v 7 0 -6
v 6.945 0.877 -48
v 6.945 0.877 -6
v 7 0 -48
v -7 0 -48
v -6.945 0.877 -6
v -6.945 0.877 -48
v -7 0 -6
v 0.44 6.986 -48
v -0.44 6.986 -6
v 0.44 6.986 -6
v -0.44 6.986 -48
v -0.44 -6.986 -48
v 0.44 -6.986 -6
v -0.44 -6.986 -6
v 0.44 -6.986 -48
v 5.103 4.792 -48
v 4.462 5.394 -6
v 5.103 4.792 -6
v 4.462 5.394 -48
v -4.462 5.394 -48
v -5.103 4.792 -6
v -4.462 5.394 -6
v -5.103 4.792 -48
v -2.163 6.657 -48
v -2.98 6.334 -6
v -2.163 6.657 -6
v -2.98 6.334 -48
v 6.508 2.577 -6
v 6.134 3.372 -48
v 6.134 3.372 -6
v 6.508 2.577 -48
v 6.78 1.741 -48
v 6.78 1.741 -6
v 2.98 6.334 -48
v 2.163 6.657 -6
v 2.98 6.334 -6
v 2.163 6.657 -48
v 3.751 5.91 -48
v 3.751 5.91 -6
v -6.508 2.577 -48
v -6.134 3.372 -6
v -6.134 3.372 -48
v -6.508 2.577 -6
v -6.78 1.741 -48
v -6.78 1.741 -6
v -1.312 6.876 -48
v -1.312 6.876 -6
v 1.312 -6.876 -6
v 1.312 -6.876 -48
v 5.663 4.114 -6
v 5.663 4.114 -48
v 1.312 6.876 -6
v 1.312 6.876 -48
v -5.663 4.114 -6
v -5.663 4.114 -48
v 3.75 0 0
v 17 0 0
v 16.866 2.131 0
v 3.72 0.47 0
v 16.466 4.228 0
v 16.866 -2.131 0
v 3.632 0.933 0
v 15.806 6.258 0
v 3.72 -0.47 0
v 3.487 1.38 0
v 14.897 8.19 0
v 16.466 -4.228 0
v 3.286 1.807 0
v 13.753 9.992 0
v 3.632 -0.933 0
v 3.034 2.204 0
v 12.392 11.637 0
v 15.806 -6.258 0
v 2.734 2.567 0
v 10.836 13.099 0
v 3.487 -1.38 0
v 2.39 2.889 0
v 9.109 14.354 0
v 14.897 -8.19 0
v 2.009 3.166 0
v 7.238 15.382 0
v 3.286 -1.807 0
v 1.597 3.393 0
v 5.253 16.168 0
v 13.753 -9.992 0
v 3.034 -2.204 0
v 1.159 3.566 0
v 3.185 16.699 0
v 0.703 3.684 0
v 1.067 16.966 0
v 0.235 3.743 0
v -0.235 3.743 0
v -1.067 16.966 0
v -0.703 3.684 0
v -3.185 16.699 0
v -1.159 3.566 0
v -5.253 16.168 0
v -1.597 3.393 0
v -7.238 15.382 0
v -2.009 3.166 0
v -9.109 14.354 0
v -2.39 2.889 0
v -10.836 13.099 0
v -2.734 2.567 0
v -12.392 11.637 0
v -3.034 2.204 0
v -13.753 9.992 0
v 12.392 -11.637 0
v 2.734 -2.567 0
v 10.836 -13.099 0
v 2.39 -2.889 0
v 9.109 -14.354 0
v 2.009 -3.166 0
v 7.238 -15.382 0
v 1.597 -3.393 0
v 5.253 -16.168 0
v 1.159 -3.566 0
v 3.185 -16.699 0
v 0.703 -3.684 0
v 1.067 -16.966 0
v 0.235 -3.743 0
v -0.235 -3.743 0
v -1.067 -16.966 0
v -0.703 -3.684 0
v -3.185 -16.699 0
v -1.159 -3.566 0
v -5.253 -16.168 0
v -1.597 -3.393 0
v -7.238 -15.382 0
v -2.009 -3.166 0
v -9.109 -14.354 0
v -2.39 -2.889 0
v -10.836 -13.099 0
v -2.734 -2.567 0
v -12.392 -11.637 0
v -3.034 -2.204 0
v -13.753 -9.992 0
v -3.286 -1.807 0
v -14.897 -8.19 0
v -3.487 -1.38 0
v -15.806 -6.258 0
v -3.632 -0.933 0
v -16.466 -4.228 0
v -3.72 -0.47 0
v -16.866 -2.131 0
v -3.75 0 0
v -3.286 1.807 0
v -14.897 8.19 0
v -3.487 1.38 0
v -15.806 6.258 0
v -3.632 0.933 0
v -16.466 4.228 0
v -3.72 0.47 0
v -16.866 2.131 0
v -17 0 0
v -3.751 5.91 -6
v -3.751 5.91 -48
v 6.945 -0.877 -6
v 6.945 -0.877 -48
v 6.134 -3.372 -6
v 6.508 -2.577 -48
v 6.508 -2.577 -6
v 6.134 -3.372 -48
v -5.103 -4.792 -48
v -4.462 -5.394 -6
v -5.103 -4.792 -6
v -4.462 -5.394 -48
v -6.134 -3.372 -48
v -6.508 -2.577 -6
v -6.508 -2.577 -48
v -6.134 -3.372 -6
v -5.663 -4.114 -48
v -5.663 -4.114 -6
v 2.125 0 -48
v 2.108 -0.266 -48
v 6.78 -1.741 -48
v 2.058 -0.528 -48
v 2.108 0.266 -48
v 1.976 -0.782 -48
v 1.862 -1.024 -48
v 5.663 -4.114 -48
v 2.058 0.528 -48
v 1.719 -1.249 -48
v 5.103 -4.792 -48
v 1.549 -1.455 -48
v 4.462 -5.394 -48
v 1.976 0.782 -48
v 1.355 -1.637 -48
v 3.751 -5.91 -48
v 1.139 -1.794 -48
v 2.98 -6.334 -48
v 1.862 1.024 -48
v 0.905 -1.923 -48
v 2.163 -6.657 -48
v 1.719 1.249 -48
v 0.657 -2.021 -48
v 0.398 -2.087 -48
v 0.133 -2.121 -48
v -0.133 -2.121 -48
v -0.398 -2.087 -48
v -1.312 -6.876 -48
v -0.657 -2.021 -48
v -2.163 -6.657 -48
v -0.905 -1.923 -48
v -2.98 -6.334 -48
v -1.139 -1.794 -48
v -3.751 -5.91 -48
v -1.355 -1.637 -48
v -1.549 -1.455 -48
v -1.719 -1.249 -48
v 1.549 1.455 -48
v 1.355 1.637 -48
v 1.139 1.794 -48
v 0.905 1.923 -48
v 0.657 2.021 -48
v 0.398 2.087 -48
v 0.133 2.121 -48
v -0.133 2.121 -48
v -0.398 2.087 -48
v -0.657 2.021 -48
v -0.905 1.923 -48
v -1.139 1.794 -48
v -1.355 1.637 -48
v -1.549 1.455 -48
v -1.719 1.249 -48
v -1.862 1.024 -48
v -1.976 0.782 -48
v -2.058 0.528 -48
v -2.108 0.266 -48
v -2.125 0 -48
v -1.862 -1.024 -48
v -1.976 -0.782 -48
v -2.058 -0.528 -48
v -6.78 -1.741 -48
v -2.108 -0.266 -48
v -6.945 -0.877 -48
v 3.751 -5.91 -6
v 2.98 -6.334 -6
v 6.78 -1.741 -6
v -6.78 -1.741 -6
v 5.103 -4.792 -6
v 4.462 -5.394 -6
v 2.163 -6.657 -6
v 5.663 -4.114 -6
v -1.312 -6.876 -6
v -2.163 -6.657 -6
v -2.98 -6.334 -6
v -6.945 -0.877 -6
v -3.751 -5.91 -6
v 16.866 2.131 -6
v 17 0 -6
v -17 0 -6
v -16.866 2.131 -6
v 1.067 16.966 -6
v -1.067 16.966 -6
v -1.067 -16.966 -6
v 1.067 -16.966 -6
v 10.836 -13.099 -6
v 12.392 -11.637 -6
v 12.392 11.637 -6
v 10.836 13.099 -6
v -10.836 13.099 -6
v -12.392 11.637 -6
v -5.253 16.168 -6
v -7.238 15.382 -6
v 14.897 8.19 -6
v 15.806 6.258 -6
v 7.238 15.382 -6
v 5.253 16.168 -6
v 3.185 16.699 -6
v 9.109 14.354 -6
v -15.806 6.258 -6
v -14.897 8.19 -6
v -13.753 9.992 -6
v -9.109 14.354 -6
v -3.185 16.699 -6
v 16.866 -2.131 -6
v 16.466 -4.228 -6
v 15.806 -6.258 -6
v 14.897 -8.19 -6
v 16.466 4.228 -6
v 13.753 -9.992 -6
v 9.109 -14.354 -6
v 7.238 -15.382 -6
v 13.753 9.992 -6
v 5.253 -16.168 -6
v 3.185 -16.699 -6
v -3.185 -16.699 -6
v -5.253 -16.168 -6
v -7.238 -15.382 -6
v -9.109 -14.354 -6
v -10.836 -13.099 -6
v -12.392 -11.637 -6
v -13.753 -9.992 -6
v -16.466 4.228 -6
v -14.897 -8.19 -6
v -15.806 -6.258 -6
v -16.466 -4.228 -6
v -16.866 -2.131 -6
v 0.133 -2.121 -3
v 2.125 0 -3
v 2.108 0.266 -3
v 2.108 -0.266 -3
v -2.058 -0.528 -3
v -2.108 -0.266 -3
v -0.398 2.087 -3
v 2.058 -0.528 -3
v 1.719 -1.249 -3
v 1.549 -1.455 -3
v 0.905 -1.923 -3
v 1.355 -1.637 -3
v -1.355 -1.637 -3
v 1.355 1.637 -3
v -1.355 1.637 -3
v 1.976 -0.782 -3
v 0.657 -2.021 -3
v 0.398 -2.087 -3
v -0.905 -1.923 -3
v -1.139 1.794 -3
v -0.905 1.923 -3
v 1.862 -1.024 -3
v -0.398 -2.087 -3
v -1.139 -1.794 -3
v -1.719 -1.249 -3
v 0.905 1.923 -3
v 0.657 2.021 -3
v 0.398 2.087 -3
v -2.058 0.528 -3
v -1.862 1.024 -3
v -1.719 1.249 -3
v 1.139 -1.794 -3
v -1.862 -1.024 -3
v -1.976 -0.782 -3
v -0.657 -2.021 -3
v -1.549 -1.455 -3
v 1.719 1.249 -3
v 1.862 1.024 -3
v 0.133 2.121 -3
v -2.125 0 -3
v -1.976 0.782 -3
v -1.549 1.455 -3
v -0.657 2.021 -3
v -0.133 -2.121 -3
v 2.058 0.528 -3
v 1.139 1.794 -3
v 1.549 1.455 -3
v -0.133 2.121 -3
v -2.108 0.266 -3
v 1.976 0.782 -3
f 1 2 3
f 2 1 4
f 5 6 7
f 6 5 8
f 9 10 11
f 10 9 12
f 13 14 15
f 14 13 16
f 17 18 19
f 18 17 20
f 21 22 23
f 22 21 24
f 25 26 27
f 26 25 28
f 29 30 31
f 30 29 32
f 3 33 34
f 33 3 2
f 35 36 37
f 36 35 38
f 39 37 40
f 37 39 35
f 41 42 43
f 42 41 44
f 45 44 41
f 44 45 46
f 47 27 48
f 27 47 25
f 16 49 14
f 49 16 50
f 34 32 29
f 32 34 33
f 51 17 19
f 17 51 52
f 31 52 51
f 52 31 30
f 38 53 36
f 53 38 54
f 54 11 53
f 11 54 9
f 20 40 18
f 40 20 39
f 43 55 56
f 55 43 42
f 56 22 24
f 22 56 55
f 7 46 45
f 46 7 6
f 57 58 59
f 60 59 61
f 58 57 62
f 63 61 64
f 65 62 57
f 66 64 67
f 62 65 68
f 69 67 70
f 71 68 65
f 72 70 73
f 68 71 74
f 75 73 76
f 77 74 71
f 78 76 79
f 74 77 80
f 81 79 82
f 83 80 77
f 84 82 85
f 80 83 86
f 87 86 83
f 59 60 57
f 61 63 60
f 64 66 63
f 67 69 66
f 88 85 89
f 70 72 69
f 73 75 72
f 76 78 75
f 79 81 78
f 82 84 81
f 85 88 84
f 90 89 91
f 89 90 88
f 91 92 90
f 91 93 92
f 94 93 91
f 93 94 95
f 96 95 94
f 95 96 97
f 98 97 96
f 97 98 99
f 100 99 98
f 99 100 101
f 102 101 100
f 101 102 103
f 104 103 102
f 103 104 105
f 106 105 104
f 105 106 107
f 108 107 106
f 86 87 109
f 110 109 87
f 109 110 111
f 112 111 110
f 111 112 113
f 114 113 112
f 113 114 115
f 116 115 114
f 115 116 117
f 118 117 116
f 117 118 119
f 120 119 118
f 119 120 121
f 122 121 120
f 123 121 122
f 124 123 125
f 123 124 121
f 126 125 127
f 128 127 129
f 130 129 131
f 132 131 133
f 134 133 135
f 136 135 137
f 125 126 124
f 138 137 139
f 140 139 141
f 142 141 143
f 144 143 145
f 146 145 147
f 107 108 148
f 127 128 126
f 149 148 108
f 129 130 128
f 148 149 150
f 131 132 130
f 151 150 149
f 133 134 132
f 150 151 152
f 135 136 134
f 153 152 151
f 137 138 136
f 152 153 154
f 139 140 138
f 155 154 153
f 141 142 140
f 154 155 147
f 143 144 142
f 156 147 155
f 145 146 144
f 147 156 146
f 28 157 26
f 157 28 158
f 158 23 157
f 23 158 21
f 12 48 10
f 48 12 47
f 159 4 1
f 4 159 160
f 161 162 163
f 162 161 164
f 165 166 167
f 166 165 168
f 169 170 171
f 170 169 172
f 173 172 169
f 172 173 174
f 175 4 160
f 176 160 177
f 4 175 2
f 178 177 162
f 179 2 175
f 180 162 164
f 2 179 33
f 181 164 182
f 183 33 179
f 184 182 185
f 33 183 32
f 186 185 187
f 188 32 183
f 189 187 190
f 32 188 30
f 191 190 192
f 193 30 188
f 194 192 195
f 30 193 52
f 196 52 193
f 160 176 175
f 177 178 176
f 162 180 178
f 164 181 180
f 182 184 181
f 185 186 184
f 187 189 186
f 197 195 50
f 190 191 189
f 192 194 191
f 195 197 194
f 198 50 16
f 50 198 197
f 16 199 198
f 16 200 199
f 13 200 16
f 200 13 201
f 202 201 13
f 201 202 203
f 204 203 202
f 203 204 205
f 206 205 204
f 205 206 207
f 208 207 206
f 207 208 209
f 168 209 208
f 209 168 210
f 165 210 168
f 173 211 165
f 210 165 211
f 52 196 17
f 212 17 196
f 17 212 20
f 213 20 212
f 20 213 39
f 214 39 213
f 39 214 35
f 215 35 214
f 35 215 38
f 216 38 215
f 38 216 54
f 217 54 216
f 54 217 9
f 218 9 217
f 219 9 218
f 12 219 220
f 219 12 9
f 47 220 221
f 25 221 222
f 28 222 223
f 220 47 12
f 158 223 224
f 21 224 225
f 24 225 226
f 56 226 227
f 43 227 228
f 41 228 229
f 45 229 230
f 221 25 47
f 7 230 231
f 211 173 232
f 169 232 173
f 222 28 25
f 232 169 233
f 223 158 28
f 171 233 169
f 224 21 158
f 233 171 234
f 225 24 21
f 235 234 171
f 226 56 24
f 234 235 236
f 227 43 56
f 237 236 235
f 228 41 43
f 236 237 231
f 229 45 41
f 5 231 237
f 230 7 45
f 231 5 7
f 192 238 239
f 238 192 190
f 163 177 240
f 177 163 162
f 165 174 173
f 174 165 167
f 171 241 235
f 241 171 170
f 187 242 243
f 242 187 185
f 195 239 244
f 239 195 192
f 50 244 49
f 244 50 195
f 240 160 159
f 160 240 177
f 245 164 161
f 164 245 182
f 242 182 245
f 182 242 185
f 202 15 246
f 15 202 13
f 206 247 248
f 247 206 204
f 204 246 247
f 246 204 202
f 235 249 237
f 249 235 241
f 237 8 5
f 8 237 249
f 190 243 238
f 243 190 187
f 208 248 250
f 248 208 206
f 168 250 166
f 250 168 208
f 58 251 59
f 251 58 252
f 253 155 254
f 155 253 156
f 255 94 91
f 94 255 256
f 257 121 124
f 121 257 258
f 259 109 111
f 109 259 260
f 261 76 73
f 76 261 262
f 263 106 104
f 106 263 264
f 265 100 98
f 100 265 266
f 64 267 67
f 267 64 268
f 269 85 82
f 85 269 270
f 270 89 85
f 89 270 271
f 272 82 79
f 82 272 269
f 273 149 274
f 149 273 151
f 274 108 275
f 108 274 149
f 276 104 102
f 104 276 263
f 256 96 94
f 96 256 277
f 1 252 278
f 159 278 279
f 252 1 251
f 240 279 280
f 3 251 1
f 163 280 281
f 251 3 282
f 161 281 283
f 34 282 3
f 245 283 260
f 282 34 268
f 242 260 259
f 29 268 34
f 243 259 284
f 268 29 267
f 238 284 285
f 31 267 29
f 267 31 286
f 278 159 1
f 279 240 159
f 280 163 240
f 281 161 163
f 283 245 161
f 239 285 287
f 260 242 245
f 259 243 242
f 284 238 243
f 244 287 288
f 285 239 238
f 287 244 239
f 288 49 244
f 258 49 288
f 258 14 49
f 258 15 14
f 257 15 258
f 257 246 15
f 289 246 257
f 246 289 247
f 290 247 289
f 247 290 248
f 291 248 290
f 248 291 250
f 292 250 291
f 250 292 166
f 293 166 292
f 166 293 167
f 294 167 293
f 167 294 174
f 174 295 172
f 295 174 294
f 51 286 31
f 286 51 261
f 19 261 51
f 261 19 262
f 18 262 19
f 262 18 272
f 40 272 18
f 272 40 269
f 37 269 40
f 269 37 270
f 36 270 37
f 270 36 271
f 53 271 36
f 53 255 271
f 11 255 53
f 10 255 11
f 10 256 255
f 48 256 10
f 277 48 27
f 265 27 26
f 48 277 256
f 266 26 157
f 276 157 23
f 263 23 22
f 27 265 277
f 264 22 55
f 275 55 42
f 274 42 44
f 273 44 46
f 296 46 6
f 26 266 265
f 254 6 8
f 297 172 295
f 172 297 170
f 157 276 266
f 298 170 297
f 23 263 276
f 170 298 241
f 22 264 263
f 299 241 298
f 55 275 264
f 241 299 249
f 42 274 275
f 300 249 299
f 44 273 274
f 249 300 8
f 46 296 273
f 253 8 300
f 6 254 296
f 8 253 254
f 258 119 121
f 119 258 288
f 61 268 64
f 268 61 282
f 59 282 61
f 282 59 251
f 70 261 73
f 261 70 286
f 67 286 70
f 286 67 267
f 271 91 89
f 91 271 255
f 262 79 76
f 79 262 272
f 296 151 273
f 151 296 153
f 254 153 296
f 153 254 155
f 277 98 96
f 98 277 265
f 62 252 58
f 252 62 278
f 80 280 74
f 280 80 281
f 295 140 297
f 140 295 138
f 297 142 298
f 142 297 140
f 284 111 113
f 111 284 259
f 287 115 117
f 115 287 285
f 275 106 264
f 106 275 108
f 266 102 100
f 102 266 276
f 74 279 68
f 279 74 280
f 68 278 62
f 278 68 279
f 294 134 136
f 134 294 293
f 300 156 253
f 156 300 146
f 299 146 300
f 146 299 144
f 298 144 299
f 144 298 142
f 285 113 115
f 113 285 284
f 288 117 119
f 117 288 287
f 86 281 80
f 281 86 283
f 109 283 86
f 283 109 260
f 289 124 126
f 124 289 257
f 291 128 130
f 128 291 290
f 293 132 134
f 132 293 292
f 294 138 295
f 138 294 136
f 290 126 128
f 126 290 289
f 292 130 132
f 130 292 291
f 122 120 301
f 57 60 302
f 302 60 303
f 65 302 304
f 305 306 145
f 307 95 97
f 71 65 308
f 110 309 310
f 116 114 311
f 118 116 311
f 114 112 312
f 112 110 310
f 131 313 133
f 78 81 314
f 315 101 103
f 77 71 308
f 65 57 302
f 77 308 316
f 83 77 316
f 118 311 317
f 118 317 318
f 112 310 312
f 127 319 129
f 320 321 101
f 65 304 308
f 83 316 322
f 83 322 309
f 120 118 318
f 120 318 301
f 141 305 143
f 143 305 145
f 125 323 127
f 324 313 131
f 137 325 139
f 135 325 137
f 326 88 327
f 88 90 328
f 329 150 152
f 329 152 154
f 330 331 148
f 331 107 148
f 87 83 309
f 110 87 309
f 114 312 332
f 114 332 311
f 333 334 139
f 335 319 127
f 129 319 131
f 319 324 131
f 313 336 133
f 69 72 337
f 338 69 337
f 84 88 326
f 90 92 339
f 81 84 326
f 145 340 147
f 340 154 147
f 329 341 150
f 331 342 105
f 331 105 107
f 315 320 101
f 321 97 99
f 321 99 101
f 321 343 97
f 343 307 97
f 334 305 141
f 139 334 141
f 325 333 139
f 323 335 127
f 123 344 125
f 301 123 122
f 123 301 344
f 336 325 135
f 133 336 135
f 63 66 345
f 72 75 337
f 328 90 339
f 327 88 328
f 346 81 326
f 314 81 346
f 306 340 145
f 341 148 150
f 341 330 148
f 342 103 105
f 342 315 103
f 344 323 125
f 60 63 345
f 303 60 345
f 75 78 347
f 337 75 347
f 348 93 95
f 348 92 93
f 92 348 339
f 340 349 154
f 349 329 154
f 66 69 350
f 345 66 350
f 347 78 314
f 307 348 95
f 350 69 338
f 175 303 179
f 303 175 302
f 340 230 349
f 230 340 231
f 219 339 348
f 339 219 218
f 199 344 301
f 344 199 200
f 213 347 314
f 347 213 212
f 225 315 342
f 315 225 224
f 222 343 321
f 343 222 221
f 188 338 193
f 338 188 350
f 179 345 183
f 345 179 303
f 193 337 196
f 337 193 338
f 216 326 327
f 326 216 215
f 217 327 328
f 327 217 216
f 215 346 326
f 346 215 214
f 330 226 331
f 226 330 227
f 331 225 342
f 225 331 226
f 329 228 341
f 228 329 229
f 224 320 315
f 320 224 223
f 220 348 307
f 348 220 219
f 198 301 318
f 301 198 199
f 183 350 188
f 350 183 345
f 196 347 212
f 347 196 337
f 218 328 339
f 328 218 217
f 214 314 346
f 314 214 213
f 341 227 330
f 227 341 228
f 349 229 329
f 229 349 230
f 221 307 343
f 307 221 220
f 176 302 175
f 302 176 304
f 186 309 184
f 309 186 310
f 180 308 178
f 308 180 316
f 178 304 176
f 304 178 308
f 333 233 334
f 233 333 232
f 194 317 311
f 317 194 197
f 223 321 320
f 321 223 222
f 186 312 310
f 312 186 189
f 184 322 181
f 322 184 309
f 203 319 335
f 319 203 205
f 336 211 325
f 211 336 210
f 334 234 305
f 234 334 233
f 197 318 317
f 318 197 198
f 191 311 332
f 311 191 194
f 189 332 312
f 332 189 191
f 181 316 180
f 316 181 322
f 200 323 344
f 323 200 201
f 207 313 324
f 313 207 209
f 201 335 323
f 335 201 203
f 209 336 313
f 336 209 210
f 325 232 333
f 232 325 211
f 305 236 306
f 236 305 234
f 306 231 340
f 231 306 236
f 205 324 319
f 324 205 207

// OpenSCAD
$fn = 50;


difference() {
	union() {
		translate(v = [0, 0, -48.0000000000]) {
			cylinder(h = 48, r = 7.0000000000);
		}
		translate(v = [0, 0, -6.0000000000]) {
			cylinder(h = 6, r = 17.0000000000);
		}
	}
	union() {
		translate(v = [0, 0, 0]) {
			rotate(a = [0, 0, 0]) {
				difference() {
					union() {
						#translate(v = [0, 0, -48.0000000000]) {
							cylinder(h = 48, r = 2.0000000000);
						}
						#translate(v = [0, 0, -3]) {
							cylinder(h = 3, r1 = 2.1250000000, r2 = 3.7500000000);
						}
						#translate(v = [0, 0, -48.0000000000]) {
							cylinder(h = 48, r = 2.1250000000);
						}
						#translate(v = [0, 0, -48.0000000000]) {
							cylinder(h = 48, r = 2.0000000000);
						}
					}
					union();
				}
			}
		}
	}
}
